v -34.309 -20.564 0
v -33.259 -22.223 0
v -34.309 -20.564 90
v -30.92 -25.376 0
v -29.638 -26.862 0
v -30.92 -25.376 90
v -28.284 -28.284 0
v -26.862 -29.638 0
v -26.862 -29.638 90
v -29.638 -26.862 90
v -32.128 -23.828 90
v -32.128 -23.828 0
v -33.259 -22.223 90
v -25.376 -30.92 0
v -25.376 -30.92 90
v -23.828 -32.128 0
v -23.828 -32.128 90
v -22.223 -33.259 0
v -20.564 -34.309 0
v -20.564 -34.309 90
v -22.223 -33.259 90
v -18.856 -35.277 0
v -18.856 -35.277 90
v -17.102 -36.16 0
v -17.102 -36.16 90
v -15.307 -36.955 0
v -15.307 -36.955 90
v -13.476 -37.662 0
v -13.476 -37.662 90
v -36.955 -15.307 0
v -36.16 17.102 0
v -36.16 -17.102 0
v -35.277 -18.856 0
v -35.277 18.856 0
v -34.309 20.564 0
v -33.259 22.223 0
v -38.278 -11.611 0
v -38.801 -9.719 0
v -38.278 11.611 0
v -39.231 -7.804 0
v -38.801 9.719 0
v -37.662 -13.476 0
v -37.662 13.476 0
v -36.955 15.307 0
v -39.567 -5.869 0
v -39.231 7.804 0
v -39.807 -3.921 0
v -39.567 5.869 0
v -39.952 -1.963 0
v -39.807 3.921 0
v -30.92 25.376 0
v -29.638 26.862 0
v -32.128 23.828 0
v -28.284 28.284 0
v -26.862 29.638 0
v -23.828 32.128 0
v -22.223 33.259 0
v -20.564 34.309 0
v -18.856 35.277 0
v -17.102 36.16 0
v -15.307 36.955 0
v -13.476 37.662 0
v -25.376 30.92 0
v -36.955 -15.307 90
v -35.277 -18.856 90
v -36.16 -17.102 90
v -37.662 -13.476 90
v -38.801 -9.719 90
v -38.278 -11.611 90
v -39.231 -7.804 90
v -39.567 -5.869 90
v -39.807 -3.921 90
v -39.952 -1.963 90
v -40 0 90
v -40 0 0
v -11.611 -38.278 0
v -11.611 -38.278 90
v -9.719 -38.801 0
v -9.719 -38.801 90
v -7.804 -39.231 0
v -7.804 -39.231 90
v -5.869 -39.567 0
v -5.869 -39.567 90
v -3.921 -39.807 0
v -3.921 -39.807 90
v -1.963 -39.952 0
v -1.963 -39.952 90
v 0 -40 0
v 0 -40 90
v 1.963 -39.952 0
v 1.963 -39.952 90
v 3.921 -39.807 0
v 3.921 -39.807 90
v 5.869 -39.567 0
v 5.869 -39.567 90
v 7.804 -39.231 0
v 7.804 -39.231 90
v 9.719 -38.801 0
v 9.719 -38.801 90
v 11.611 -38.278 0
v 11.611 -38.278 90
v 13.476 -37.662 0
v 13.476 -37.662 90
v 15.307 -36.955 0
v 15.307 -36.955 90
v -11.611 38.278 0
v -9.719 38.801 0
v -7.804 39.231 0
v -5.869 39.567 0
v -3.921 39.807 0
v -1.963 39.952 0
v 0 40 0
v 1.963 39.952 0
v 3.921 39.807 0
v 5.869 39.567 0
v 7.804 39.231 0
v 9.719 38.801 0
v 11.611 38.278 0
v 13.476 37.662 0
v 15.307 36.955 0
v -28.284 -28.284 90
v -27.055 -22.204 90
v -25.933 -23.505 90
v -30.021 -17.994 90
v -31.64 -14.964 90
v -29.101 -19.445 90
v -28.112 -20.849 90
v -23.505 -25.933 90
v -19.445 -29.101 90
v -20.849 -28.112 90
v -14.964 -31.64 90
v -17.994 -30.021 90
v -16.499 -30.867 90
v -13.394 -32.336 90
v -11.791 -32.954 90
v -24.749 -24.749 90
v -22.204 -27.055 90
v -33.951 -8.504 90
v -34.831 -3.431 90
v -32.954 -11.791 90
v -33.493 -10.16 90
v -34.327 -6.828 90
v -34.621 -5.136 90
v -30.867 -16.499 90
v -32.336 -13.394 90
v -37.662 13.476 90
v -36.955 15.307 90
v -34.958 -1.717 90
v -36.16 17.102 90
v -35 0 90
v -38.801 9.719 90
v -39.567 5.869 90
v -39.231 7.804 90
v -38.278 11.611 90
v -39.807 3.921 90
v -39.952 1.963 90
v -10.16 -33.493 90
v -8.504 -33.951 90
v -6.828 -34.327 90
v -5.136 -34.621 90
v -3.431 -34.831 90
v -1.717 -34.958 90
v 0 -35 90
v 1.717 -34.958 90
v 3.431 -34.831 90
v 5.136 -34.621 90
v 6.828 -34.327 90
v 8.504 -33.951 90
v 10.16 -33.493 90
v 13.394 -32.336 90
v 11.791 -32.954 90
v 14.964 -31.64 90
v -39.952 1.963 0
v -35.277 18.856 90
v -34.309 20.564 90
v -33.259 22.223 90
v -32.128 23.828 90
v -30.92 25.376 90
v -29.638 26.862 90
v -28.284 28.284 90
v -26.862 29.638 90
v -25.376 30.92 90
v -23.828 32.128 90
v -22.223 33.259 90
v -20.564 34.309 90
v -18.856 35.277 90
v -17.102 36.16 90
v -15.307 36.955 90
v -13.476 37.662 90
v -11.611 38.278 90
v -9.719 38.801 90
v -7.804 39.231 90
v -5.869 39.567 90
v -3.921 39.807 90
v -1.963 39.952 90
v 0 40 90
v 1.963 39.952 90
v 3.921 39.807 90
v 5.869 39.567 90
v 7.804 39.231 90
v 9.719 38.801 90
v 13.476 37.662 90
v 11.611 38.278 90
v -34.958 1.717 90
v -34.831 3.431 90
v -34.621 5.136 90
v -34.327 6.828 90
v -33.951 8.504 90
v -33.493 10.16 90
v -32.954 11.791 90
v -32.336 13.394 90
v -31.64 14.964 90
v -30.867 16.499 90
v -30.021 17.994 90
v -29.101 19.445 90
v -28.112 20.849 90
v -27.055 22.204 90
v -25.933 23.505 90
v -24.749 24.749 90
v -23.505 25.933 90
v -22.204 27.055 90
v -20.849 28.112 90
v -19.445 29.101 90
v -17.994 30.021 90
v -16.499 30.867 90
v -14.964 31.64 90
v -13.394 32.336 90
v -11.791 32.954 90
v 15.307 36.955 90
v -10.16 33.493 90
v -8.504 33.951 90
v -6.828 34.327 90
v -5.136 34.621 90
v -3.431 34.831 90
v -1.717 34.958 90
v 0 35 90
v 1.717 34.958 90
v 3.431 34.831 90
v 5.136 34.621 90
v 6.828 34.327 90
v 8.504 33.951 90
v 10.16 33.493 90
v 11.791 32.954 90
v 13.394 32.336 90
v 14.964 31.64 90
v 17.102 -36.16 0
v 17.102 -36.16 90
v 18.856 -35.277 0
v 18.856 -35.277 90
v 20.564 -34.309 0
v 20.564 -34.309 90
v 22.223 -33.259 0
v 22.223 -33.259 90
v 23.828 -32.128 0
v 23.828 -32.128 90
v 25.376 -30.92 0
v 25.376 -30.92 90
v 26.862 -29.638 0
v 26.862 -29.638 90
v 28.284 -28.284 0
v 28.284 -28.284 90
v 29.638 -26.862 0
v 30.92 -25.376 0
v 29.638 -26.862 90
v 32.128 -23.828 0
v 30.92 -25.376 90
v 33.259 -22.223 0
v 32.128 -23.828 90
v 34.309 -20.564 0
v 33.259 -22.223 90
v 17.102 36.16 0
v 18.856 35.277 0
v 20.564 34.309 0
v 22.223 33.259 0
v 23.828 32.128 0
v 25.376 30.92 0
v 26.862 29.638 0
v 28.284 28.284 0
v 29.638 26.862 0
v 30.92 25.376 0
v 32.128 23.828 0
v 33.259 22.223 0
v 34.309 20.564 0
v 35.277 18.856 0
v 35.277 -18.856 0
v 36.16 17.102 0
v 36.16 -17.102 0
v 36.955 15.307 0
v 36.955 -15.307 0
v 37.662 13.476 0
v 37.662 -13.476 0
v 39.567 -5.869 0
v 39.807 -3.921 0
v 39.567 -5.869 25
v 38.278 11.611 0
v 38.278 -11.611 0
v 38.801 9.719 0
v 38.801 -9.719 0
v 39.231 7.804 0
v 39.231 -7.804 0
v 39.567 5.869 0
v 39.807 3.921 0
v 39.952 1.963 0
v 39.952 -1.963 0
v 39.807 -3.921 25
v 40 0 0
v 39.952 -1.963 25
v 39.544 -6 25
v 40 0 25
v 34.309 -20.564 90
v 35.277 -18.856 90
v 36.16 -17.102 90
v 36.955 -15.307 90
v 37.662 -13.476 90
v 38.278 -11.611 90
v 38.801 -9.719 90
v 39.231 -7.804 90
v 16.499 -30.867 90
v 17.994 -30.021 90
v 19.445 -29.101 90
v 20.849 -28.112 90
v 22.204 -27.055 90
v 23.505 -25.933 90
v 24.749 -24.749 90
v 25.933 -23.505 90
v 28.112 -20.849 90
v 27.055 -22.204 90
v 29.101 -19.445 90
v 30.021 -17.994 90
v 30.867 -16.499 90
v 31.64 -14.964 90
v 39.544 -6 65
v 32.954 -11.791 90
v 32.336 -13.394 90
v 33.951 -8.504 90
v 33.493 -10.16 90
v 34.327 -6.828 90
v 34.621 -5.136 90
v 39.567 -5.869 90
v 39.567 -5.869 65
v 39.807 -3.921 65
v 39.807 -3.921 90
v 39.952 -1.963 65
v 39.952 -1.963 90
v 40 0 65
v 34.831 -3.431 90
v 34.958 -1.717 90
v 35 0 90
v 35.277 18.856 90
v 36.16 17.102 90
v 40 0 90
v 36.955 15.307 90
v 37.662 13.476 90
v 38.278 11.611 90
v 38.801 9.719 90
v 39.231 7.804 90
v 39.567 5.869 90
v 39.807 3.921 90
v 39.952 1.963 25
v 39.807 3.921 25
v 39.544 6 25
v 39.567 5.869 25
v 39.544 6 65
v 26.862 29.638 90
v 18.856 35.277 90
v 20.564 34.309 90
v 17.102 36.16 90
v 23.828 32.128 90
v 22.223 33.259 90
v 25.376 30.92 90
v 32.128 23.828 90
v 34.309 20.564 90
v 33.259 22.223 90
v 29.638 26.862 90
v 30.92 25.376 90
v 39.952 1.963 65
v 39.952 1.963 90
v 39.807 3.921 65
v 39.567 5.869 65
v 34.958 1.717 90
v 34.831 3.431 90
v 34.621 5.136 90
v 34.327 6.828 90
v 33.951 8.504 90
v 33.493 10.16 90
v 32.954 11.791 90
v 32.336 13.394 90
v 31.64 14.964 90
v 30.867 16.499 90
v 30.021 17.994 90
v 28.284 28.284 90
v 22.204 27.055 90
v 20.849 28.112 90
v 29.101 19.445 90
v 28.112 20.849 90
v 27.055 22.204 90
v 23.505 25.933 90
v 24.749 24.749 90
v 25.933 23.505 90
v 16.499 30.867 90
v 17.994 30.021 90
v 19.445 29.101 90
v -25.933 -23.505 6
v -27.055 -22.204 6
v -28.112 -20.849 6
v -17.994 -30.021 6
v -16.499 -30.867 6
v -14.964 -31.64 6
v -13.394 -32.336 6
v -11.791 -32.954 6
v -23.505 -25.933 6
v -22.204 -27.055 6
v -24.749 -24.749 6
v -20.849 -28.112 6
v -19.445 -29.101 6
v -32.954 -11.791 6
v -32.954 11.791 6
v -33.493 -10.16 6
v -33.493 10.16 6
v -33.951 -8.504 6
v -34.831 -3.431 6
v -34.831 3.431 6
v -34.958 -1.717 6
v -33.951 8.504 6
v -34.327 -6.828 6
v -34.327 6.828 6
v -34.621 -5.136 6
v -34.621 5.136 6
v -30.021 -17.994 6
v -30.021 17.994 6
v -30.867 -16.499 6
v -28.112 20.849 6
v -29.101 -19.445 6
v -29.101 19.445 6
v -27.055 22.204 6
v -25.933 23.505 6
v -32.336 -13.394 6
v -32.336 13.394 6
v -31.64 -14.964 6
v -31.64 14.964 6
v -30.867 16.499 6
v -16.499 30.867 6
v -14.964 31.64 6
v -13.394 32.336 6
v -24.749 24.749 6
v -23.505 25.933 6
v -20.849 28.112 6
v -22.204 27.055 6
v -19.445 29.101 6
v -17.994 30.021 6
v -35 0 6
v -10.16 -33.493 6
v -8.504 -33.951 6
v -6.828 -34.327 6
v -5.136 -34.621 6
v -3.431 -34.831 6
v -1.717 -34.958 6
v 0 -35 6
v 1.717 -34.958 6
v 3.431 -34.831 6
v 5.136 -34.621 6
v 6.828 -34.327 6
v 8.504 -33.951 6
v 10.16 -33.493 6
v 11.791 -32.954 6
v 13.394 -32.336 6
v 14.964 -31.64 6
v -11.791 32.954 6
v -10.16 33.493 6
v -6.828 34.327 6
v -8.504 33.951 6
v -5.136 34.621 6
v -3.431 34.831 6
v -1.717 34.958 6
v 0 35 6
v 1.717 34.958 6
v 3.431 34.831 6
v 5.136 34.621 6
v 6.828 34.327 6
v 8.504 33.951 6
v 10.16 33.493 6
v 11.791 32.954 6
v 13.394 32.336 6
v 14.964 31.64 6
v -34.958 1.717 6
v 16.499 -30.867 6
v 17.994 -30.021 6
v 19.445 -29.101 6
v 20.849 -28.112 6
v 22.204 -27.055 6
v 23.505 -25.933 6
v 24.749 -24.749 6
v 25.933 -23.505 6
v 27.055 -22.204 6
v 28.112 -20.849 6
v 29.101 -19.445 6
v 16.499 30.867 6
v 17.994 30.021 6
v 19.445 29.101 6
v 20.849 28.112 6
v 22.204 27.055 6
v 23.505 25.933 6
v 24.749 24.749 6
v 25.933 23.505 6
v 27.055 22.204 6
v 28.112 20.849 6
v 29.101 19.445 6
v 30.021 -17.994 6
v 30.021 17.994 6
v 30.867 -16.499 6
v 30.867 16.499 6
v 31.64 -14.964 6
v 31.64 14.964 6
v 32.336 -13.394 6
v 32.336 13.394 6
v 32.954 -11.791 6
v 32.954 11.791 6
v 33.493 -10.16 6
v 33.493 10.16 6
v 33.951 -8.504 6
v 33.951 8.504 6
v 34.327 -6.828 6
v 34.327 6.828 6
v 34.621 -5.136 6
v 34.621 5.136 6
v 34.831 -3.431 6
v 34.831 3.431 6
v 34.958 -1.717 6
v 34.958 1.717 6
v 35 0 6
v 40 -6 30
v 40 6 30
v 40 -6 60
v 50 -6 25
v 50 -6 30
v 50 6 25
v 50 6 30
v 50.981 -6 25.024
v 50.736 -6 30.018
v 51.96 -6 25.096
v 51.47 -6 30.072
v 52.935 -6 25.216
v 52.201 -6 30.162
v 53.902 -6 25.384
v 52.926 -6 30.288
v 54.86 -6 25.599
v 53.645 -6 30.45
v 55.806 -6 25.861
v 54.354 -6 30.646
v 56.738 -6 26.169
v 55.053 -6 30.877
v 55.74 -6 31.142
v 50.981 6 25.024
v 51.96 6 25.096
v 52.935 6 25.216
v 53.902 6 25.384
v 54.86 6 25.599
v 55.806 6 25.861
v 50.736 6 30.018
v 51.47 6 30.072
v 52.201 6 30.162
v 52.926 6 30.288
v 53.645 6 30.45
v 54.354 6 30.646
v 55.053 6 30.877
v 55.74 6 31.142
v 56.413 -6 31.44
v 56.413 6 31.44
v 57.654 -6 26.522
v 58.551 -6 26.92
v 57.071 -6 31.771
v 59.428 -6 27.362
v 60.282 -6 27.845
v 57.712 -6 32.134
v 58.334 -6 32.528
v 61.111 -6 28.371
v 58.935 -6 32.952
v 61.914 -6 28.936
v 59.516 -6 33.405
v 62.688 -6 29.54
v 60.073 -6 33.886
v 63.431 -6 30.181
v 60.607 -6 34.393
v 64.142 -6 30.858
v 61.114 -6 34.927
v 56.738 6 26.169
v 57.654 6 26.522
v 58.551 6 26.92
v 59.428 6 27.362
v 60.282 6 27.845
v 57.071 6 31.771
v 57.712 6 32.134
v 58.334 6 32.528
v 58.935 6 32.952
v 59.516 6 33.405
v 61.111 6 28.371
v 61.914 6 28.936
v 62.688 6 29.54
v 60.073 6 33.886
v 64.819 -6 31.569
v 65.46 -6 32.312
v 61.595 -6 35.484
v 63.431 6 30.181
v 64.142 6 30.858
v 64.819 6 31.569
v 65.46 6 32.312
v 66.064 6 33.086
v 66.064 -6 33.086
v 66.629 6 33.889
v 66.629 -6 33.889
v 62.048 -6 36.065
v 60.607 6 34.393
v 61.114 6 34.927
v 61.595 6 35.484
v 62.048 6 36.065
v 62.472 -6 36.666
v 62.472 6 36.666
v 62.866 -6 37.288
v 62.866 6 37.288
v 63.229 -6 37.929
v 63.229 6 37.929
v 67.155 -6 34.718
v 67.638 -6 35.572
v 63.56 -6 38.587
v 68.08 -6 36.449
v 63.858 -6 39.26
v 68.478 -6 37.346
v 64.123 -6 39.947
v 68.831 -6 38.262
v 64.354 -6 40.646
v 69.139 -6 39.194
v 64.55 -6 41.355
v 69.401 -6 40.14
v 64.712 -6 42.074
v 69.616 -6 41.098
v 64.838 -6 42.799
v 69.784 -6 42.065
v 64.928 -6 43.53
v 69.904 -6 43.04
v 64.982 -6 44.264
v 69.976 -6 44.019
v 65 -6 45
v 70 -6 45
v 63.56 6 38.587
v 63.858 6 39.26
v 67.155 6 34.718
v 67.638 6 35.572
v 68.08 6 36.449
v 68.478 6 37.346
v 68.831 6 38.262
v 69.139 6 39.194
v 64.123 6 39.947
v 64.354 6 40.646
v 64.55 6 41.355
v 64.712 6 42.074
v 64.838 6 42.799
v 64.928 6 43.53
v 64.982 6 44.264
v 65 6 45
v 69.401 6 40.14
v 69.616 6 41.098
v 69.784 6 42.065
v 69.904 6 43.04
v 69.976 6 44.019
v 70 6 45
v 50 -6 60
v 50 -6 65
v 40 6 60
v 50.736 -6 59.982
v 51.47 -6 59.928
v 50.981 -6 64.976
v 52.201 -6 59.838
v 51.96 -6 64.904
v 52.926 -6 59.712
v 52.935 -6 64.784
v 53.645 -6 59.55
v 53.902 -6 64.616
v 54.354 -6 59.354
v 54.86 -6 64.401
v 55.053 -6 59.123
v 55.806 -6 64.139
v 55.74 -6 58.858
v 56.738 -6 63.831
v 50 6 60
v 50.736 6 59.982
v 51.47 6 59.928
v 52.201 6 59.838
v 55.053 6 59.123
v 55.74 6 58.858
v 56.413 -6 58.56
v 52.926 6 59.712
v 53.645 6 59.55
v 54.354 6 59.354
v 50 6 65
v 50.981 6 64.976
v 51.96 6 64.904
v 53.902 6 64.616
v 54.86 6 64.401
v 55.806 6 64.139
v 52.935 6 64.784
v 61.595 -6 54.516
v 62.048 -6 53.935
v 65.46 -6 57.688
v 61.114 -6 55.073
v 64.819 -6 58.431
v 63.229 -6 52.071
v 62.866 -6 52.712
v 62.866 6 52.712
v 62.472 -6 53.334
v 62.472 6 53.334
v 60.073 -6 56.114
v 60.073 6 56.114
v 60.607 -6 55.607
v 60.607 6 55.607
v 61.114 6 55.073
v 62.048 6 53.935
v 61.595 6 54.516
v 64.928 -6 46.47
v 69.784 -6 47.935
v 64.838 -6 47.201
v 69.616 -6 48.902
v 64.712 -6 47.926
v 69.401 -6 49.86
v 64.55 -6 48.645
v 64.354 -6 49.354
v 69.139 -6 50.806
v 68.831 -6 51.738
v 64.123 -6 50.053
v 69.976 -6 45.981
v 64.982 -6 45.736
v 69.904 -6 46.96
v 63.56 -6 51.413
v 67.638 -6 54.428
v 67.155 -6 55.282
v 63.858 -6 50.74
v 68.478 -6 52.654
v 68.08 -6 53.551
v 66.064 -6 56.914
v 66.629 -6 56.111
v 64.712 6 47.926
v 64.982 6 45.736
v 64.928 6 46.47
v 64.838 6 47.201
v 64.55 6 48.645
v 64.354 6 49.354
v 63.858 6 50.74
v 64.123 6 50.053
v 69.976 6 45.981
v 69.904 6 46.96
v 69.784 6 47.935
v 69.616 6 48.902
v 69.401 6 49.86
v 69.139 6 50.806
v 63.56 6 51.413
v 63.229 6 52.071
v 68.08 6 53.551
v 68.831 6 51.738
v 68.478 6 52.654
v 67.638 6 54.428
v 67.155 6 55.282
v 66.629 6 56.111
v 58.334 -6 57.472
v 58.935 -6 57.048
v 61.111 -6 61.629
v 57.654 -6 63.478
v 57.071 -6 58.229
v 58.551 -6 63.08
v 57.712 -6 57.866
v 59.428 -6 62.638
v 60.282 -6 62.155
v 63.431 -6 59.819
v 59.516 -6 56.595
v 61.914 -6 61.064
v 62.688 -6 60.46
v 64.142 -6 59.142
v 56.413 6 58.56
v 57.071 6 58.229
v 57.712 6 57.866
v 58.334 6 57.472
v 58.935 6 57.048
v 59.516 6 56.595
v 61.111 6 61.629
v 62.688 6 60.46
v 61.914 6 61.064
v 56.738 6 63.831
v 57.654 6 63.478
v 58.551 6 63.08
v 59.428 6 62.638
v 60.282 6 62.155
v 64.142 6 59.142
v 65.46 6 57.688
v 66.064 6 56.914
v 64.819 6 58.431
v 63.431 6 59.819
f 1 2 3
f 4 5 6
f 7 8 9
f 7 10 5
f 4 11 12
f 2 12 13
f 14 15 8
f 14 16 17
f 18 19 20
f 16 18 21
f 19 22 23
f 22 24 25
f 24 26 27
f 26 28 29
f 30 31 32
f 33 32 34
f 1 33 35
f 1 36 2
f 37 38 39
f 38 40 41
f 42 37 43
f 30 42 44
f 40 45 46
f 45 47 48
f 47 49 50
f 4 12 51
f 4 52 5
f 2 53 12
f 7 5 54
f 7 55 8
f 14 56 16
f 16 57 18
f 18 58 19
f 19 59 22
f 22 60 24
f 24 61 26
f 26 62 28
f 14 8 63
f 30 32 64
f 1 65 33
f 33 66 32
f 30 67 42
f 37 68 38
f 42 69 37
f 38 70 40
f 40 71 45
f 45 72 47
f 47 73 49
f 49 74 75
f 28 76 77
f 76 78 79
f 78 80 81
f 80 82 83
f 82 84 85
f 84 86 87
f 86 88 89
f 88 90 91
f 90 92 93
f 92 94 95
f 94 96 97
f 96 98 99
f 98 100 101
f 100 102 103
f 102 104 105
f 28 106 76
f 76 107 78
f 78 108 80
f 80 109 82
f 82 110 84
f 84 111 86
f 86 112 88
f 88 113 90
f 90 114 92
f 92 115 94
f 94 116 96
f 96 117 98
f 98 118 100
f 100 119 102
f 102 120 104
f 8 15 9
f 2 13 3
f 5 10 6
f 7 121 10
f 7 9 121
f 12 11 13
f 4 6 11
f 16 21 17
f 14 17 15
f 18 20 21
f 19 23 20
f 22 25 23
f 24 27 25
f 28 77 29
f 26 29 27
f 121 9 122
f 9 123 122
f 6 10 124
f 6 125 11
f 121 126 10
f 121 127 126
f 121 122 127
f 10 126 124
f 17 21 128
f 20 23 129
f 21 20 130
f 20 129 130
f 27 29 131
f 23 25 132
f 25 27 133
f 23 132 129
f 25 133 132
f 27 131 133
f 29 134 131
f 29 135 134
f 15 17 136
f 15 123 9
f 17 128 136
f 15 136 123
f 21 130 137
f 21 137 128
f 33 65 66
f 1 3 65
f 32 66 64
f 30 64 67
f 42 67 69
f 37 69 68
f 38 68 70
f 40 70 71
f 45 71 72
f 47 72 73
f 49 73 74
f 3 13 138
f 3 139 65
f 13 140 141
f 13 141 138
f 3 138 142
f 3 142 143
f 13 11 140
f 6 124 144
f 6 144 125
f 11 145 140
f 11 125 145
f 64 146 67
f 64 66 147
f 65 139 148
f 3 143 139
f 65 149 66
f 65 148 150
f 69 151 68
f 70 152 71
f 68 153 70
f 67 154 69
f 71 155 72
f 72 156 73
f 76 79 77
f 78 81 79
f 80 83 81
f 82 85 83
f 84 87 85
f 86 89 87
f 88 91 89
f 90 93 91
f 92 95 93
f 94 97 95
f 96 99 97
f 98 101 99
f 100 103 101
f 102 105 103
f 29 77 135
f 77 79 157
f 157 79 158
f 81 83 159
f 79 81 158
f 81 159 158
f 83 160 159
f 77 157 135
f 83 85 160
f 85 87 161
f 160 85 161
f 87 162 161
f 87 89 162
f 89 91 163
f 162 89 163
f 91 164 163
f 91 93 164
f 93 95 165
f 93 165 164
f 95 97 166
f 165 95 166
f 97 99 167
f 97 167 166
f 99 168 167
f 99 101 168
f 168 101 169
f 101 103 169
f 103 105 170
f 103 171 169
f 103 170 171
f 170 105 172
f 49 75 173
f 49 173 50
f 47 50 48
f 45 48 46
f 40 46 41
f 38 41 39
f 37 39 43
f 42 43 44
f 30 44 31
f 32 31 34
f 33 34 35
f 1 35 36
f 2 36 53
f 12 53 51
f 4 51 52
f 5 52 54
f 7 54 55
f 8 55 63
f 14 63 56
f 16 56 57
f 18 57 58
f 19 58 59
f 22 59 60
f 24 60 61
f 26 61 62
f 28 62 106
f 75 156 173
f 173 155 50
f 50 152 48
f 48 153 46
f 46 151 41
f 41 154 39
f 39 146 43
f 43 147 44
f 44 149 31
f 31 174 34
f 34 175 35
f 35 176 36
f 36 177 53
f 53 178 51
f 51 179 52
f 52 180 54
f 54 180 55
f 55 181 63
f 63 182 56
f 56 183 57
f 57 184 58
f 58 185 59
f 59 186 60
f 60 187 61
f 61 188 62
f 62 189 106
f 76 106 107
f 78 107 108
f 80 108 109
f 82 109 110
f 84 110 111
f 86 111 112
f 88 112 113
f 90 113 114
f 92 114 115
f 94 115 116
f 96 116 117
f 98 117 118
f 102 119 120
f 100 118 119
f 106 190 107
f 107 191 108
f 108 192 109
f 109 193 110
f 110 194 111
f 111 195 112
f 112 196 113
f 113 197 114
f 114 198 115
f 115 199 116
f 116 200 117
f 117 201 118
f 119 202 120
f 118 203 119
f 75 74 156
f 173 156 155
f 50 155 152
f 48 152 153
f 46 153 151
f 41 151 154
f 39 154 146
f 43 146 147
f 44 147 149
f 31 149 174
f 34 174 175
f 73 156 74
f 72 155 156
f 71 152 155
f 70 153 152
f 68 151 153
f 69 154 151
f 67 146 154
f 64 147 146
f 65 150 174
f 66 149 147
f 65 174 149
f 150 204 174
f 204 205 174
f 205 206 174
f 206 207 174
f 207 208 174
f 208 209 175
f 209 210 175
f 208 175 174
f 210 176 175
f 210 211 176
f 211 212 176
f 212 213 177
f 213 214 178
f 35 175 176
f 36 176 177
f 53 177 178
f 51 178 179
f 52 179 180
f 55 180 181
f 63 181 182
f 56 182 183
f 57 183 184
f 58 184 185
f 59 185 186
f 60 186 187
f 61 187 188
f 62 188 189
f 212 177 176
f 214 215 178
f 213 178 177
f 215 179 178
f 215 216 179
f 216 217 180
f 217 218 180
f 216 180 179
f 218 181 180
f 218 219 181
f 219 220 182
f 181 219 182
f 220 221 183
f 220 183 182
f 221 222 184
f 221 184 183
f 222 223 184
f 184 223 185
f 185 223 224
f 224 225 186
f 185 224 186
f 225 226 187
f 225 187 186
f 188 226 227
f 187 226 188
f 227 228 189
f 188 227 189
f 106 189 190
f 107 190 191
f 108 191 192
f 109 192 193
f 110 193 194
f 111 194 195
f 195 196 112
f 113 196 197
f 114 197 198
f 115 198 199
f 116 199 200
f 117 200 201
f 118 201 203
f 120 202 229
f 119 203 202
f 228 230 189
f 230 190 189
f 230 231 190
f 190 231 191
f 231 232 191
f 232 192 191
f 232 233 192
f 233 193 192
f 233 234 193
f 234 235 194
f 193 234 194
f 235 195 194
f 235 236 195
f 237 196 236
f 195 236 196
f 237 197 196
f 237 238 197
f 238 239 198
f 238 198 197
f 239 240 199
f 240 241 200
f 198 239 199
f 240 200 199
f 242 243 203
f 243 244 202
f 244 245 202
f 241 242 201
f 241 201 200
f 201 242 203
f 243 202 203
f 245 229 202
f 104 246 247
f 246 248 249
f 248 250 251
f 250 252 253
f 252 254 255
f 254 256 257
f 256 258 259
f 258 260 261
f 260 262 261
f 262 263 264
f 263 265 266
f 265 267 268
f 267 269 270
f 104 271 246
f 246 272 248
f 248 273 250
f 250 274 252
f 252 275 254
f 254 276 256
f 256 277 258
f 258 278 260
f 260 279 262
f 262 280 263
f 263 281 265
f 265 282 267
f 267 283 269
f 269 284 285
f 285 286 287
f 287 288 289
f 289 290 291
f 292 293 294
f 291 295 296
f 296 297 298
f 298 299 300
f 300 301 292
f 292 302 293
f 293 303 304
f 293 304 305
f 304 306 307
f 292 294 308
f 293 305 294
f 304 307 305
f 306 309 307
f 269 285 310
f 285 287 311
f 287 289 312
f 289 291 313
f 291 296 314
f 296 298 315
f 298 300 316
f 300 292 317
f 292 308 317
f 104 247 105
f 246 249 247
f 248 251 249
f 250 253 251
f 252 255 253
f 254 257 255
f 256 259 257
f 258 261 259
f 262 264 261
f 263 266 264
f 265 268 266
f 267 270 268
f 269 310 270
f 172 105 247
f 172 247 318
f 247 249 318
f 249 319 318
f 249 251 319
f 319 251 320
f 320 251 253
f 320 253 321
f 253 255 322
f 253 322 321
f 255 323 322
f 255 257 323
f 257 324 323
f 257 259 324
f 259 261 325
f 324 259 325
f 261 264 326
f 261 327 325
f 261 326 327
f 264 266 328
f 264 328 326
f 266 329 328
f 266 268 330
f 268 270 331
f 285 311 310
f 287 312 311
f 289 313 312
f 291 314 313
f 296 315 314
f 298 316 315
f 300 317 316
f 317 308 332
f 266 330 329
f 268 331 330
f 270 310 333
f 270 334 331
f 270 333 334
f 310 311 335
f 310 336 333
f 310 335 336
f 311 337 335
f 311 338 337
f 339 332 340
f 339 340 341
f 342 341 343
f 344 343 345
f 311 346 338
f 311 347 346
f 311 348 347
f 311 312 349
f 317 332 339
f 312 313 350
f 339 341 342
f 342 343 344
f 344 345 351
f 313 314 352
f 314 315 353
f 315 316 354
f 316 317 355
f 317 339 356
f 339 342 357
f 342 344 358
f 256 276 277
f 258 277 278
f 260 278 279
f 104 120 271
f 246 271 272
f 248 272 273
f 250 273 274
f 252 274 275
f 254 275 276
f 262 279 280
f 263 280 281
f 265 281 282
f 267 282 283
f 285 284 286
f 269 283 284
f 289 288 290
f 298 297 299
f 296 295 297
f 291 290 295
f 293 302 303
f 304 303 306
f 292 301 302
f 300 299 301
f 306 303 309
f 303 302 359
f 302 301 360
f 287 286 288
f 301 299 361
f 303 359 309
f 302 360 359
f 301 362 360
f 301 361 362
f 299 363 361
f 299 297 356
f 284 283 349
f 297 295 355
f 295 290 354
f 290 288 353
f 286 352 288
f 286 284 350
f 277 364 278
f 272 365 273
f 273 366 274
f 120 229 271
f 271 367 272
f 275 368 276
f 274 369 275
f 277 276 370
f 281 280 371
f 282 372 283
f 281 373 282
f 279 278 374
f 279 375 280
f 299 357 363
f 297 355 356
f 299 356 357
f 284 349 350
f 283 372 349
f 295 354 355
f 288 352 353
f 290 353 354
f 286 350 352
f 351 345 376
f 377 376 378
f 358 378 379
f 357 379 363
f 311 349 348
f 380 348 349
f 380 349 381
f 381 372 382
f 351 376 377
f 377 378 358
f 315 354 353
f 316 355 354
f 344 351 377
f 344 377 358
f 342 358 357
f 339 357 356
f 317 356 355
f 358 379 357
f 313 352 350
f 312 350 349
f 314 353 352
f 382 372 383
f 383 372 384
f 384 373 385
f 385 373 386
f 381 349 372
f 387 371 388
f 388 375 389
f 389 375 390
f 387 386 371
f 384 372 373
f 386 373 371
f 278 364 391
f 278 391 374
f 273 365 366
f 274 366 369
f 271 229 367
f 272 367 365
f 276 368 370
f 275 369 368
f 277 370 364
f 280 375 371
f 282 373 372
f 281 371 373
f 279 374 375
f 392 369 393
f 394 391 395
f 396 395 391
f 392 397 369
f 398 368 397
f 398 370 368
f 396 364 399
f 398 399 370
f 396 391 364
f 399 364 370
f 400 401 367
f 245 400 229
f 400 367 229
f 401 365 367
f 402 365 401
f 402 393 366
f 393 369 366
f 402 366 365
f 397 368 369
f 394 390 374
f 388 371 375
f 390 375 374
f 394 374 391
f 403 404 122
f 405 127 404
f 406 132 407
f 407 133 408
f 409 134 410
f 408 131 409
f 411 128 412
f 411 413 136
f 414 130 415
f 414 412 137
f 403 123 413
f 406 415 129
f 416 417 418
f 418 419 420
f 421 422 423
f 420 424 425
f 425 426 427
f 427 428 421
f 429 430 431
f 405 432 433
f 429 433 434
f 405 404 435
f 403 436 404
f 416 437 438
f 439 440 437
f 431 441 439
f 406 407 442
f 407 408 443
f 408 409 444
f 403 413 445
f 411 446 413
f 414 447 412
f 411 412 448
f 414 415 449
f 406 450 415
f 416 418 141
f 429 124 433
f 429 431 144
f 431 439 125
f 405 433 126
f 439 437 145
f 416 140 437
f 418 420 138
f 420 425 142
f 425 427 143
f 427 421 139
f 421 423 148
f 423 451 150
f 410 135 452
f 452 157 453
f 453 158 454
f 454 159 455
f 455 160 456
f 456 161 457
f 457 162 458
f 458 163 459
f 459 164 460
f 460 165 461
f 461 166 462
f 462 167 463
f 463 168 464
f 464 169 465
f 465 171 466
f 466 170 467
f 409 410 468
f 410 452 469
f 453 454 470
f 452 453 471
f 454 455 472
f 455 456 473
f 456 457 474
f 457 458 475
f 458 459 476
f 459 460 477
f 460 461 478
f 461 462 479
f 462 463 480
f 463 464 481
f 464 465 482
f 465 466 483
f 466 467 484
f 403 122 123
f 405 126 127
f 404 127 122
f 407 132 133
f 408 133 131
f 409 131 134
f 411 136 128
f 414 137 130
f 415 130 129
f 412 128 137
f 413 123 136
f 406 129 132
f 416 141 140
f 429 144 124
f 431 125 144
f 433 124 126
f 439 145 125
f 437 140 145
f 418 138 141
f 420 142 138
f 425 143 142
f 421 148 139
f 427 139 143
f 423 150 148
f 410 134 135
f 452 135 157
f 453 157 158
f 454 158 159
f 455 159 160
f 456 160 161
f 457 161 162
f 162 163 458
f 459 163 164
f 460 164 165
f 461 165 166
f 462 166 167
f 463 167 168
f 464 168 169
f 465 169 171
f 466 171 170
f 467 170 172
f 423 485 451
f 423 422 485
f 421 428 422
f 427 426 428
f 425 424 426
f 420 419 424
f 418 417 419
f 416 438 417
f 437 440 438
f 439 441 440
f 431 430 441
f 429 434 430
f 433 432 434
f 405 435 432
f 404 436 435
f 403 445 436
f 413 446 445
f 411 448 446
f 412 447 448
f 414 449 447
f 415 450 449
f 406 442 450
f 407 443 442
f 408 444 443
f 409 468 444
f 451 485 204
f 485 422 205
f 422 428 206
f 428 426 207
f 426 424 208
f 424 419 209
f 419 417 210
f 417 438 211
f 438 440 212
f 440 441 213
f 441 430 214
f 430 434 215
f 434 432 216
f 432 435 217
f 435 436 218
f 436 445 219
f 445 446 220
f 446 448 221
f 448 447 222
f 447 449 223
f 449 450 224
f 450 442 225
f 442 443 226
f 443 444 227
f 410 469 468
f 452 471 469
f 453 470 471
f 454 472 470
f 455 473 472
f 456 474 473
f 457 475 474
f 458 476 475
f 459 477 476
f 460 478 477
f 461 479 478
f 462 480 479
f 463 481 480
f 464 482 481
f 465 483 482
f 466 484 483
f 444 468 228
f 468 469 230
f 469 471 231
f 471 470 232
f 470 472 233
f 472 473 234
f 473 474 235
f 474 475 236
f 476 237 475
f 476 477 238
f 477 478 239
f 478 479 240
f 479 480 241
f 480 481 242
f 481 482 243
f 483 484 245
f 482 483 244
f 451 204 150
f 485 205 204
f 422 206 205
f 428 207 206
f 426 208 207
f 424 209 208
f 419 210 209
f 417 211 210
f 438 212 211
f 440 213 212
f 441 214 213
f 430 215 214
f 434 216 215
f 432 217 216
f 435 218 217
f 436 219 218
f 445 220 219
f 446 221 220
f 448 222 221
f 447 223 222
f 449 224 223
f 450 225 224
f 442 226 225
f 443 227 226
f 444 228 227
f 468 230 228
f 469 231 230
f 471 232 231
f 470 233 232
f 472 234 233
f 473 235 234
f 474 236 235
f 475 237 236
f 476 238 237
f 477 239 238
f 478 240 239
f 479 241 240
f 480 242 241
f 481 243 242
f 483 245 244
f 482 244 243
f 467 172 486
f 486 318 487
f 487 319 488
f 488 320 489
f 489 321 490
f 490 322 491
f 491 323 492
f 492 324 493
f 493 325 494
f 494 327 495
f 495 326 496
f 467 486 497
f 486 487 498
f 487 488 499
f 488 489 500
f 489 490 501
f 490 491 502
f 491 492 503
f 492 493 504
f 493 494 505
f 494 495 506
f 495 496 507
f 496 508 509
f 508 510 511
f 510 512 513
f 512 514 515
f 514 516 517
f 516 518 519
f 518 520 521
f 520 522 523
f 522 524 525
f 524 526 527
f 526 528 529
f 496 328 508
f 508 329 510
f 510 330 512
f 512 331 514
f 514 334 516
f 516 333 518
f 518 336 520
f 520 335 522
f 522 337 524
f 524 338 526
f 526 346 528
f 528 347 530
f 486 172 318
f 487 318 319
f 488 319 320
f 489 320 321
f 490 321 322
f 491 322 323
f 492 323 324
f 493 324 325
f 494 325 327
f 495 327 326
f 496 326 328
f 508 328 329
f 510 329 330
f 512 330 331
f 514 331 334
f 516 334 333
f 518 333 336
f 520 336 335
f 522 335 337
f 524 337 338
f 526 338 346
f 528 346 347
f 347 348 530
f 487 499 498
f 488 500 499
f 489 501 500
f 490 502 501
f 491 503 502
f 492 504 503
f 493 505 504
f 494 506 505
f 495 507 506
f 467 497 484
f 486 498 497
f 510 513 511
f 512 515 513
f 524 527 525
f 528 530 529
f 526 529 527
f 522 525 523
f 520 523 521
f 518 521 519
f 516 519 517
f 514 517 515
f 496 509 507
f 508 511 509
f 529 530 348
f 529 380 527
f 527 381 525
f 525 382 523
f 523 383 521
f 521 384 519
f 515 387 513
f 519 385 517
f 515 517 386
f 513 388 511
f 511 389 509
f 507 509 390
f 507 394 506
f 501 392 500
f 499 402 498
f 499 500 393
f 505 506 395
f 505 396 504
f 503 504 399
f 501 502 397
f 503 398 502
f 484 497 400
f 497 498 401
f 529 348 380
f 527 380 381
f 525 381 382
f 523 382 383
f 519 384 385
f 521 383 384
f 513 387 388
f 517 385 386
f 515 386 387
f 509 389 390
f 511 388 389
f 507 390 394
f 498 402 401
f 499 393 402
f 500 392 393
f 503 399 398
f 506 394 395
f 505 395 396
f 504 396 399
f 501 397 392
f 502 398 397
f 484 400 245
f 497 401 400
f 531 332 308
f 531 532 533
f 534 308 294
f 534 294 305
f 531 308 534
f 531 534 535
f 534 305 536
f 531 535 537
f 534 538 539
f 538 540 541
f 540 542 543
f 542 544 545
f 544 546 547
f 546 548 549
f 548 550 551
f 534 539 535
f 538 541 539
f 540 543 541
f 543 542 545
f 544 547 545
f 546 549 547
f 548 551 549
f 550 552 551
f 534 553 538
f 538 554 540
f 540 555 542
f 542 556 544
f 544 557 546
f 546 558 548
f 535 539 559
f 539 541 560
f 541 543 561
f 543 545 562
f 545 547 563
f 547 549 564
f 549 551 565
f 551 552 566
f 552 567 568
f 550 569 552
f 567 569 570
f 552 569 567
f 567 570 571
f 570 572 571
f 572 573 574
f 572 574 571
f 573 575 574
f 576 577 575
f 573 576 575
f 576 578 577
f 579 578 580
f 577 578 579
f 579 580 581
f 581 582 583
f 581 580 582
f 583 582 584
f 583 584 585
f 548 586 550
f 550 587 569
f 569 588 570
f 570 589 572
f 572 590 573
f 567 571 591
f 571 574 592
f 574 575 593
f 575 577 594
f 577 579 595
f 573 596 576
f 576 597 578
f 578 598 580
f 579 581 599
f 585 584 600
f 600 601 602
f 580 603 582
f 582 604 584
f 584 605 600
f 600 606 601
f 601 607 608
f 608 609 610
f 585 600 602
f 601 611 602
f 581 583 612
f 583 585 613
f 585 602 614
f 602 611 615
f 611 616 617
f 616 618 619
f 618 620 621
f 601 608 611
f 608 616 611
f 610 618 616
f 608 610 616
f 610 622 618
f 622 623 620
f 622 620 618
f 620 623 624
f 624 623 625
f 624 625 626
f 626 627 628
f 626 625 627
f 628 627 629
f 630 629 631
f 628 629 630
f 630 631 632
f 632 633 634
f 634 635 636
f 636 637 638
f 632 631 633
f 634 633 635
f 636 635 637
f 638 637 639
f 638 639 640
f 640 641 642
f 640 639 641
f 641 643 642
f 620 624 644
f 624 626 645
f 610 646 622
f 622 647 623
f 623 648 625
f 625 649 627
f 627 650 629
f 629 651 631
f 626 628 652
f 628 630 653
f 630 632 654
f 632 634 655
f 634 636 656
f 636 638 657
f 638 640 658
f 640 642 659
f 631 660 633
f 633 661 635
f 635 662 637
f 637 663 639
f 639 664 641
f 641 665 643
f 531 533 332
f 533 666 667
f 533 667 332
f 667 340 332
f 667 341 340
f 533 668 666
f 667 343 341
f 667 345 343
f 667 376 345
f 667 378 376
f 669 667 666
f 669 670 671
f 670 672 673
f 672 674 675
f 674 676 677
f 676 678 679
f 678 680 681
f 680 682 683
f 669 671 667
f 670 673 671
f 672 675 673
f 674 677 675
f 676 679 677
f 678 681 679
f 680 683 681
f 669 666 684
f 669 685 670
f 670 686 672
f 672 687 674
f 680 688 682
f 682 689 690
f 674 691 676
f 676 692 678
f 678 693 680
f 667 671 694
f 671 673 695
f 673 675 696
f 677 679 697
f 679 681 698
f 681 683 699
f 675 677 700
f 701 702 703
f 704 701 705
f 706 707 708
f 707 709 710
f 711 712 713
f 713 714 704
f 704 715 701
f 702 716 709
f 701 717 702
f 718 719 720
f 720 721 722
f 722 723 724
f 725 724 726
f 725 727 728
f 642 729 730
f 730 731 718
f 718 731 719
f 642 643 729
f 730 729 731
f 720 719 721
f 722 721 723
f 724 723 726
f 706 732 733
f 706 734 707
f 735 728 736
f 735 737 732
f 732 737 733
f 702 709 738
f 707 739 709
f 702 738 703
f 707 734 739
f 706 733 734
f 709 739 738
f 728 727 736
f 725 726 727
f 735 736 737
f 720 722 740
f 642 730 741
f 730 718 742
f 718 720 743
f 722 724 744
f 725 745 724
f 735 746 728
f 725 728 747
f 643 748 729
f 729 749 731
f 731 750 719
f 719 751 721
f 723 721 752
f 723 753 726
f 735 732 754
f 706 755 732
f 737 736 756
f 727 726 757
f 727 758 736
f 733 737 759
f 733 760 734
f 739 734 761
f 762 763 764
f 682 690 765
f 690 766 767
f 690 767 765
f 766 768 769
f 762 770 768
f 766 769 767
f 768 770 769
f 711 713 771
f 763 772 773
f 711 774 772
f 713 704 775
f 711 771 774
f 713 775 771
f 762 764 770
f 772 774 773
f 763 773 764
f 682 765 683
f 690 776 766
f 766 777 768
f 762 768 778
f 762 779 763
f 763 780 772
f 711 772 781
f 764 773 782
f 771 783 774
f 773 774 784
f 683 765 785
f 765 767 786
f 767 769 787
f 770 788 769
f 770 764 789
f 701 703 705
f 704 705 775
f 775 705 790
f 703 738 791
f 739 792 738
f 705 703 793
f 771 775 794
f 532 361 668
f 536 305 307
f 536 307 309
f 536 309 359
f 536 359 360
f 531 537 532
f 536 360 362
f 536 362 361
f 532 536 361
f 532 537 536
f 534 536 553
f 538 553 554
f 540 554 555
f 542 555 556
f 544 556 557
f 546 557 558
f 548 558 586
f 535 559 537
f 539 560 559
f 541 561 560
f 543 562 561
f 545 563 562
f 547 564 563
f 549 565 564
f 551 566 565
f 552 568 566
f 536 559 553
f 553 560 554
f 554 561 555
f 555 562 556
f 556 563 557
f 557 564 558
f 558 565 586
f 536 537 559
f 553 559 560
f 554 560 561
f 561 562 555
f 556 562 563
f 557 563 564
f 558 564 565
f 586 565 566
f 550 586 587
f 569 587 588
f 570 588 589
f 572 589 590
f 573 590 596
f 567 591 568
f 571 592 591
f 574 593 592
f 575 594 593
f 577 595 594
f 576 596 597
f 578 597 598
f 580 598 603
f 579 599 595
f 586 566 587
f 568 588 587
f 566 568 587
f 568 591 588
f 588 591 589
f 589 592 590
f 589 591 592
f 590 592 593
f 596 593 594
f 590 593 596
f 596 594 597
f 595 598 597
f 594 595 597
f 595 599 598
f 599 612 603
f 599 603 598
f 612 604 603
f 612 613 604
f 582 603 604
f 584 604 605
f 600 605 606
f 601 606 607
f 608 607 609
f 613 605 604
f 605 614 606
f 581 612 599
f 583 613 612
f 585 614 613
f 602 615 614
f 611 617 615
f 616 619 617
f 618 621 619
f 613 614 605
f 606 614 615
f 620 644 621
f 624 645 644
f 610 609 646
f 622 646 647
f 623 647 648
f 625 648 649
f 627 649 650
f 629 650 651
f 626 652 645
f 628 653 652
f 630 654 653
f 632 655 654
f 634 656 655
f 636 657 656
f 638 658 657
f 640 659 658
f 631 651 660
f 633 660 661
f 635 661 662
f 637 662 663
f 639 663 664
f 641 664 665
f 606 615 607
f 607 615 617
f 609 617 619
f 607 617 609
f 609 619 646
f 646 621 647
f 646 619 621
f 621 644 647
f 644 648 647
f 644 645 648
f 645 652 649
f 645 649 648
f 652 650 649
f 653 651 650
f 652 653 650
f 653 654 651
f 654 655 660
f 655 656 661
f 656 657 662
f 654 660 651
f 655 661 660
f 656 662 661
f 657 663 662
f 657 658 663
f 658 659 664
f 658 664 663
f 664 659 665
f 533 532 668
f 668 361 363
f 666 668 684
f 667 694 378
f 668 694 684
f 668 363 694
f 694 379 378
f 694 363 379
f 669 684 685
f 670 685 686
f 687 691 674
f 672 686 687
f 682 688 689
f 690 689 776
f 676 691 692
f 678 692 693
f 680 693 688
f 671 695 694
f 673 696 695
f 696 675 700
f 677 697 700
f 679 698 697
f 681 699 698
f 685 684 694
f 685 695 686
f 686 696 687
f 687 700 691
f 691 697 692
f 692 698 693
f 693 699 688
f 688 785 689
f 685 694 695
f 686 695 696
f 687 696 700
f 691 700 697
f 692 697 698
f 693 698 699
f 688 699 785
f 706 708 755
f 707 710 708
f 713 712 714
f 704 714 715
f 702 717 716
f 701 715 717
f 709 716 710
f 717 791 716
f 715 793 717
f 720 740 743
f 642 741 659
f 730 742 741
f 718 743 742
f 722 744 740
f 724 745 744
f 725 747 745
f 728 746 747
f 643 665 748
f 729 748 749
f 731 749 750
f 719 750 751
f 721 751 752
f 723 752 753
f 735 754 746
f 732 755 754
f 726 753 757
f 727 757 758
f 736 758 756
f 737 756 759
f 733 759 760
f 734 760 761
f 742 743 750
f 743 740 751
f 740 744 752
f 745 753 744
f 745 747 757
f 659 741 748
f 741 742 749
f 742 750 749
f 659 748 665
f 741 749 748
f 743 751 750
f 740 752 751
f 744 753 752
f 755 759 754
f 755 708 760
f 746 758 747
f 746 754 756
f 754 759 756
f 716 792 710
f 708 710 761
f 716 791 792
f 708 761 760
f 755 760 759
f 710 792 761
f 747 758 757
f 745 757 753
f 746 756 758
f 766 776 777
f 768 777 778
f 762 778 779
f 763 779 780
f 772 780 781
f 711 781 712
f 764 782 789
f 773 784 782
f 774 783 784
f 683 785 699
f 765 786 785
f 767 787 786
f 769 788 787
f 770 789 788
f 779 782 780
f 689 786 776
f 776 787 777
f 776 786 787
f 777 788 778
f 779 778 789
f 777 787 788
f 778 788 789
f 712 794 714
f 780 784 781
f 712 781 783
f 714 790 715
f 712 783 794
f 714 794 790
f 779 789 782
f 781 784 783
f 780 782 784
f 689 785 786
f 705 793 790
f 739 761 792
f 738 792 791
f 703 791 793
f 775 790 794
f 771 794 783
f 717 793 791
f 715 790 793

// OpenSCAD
$fn = 128;

cup_outer_diameter = 80;
cup_inner_diameter = 70;
cup_height = 90;
bottom_thickness = 6;

cup_outer_radius = cup_outer_diameter / 2;
cup_inner_radius = cup_inner_diameter / 2;

handle_opening_height = 30;
handle_opening_width = 25;
handle_wall_thickness = 5;
handle_thickness = 12;

handle_center_z = cup_height / 2;

handle_inner_radius = handle_opening_height / 2;
handle_inner_left_x = cup_outer_radius;
handle_center_x = handle_inner_left_x + (handle_opening_width - handle_inner_radius);

handle_outer_radius = handle_inner_radius + handle_wall_thickness;
handle_outer_left_x = handle_inner_left_x - handle_wall_thickness;


module right_half_disk(cx, cz, r) {
    intersection() {
        translate([cx, cz])
            circle(r = r);

        translate([cx, cz - r])
            square([r, 2 * r]);
    }
}


module d_profile(left_x, center_x, center_z, radius) {
    union() {
        translate([left_x, center_z - radius])
            square([center_x - left_x, 2 * radius]);

        right_half_disk(center_x, center_z, radius);
    }
}


module mug_body() {
    difference() {
        cylinder(r = cup_outer_radius, h = cup_height);

        translate([0, 0, bottom_thickness])
            cylinder(
                r = cup_inner_radius,
                h = cup_height - bottom_thickness + 0.01
            );
    }
}


module handle() {
    rotate([90, 0, 0])
        linear_extrude(
            height = handle_thickness,
            center = true,
            convexity = 10
        )
        difference() {
            d_profile(
                handle_outer_left_x,
                handle_center_x,
                handle_center_z,
                handle_outer_radius
            );

            d_profile(
                handle_inner_left_x,
                handle_center_x,
                handle_center_z,
                handle_inner_radius
            );
        }
}


union() {
    mug_body();
    handle();
}
